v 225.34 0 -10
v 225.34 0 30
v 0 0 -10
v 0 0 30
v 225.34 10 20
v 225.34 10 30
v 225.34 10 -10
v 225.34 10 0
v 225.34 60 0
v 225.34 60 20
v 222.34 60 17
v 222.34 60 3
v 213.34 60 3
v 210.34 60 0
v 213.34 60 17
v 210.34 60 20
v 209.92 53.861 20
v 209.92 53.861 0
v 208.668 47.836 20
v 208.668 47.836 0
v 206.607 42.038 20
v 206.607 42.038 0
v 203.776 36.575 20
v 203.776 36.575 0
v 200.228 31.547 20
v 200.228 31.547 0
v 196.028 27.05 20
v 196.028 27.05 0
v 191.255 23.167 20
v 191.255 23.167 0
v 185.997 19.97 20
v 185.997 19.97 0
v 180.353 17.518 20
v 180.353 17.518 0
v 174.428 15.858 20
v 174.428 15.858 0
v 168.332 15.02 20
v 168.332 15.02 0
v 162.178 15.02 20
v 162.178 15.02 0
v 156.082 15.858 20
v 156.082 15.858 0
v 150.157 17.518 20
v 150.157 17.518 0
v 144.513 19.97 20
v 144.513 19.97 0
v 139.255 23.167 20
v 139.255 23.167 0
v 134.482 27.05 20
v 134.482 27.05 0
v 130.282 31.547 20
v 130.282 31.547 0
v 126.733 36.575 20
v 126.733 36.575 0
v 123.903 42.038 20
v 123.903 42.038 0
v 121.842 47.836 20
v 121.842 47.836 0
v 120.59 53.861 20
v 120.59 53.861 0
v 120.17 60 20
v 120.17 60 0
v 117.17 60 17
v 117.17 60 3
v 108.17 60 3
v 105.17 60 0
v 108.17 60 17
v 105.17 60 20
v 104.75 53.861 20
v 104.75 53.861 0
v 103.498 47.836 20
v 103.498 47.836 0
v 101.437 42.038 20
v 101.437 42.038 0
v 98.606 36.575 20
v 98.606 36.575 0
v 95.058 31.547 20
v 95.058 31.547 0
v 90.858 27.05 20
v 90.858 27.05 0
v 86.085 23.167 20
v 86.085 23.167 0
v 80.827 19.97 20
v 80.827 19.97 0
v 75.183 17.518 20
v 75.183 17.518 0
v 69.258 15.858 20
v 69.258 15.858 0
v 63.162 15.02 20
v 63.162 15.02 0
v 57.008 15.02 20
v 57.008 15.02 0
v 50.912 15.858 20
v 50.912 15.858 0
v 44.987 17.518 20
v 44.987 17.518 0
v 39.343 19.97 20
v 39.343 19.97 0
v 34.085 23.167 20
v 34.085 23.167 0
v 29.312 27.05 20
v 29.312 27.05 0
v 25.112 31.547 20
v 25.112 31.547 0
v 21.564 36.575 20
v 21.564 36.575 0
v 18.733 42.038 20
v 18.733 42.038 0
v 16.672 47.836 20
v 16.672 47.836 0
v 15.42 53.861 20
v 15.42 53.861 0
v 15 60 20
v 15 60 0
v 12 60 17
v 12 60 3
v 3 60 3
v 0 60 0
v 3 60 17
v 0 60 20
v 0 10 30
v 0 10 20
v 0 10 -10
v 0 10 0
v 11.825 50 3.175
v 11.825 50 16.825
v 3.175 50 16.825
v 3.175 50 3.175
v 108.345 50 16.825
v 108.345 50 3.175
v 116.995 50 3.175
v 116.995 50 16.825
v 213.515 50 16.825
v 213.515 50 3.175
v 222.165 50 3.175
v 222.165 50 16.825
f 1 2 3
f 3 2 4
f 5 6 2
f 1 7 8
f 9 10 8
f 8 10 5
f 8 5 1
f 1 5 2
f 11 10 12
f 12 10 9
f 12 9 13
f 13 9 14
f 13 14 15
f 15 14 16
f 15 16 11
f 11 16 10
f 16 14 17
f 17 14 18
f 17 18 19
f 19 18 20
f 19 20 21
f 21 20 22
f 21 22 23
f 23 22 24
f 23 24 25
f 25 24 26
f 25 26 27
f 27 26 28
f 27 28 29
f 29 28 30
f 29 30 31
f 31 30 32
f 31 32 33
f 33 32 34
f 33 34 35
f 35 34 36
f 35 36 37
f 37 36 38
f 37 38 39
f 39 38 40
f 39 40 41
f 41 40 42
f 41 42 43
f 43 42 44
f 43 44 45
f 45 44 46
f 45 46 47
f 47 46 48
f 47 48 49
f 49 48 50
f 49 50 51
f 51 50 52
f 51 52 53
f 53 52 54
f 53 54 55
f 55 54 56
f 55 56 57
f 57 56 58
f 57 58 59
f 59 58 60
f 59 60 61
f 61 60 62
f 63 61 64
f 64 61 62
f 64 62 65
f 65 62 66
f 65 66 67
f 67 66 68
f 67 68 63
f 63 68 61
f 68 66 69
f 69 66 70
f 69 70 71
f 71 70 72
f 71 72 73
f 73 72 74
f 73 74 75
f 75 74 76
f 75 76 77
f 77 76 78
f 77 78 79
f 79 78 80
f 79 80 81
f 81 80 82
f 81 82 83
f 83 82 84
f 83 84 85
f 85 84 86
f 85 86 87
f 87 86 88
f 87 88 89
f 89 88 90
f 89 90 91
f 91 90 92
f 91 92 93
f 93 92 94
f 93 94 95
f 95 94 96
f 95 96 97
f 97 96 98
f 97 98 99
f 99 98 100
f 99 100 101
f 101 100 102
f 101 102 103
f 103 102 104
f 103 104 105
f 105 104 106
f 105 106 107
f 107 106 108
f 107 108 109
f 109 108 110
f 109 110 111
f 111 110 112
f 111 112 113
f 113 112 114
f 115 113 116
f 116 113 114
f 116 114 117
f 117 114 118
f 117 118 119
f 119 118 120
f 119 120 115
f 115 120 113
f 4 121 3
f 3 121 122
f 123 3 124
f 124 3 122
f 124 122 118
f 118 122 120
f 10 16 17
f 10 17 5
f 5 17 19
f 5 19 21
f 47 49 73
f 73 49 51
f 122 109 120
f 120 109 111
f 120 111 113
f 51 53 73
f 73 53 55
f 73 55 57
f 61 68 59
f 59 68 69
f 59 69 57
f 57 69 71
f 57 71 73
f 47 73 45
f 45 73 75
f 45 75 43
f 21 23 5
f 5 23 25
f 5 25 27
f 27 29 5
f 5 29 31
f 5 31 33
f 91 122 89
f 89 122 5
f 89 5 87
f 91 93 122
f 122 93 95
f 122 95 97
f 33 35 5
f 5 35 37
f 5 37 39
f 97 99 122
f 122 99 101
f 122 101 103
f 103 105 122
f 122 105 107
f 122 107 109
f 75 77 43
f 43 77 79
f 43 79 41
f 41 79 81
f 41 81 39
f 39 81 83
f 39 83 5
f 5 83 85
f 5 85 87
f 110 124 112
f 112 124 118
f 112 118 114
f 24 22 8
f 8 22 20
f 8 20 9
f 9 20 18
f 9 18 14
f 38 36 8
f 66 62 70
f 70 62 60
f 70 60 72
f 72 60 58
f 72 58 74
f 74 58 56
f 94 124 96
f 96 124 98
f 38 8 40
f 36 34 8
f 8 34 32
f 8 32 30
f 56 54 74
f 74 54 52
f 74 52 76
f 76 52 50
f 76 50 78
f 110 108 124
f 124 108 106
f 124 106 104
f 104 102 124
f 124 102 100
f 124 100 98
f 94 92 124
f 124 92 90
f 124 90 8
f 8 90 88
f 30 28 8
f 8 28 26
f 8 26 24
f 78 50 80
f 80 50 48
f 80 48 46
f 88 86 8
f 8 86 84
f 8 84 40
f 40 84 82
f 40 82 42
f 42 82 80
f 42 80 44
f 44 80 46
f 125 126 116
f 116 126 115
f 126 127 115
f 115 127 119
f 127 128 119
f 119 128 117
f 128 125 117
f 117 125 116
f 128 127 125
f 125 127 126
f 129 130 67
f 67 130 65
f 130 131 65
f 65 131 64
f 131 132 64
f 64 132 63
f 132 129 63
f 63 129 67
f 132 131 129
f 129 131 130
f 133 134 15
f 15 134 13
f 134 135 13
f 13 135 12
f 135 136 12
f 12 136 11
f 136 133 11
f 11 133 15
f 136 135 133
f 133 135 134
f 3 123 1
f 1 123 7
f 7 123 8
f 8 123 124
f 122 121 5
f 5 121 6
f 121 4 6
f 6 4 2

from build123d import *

# Parameters (mm, degrees)
BOSS_EXTRUDE2_DEPTH      = 20
SKETCH8_W                = 9
SKETCH8_H                = 14
CUT_EXTRUDE1_DEPTH       = 10
CUT_EXTRUDE1_TAPER       = 1
BOSS_EXTRUDE3_START      = -10
SKETCH9_W                = 225.34
SKETCH9_H                = 10
BOSS_EXTRUDE3_DEPTH      = 20
BOSS_EXTRUDE3_DEPTH_BACK = 20


with BuildPart() as part:
    # Sketch7 → Boss-Extrude2 (new body)
    with BuildSketch(Plane.XY):
        with BuildLine():
            Line((0, 10), (0, 60))
            Line((0, 60), (15, 60))
            ThreePointArc((15, 60), (60.085, 14.915), (105.17, 60))
            Line((105.17, 60), (120.17, 60))
            ThreePointArc((120.17, 60), (165.255, 14.915), (210.34, 60))
            Line((210.34, 60), (225.34, 60))
            Line((225.34, 60), (225.34, 0))
            Line((225.34, 0), (0, 0))
            Line((0, 0), (0, 10))
        make_face()
    extrude(amount=BOSS_EXTRUDE2_DEPTH)

    # Sketch8 → Cut-Extrude1 (cut)
    with BuildSketch(Plane(origin=(0, 60, 0), x_dir=(1, 0, 0), z_dir=(0, 1, 0))):
        with Locations((7.5, -10)):
            Rectangle(SKETCH8_W, SKETCH8_H)
        with Locations((217.84, -10)):
            Rectangle(SKETCH8_W, SKETCH8_H)
        with Locations((112.67, -10)):
            Rectangle(SKETCH8_W, SKETCH8_H)
    extrude(amount=-CUT_EXTRUDE1_DEPTH, taper=CUT_EXTRUDE1_TAPER, mode=Mode.SUBTRACT)

    # Sketch9 → Boss-Extrude3 (add, two sides)
    with BuildSketch(Plane.XY.offset(20).offset(BOSS_EXTRUDE3_START)) as boss_extrude3_sk:
        with Locations((112.67, 5)):
            Rectangle(SKETCH9_W, SKETCH9_H)
    extrude(amount=BOSS_EXTRUDE3_DEPTH)
    extrude(boss_extrude3_sk.sketch, amount=-BOSS_EXTRUDE3_DEPTH_BACK)


solid = part.part
